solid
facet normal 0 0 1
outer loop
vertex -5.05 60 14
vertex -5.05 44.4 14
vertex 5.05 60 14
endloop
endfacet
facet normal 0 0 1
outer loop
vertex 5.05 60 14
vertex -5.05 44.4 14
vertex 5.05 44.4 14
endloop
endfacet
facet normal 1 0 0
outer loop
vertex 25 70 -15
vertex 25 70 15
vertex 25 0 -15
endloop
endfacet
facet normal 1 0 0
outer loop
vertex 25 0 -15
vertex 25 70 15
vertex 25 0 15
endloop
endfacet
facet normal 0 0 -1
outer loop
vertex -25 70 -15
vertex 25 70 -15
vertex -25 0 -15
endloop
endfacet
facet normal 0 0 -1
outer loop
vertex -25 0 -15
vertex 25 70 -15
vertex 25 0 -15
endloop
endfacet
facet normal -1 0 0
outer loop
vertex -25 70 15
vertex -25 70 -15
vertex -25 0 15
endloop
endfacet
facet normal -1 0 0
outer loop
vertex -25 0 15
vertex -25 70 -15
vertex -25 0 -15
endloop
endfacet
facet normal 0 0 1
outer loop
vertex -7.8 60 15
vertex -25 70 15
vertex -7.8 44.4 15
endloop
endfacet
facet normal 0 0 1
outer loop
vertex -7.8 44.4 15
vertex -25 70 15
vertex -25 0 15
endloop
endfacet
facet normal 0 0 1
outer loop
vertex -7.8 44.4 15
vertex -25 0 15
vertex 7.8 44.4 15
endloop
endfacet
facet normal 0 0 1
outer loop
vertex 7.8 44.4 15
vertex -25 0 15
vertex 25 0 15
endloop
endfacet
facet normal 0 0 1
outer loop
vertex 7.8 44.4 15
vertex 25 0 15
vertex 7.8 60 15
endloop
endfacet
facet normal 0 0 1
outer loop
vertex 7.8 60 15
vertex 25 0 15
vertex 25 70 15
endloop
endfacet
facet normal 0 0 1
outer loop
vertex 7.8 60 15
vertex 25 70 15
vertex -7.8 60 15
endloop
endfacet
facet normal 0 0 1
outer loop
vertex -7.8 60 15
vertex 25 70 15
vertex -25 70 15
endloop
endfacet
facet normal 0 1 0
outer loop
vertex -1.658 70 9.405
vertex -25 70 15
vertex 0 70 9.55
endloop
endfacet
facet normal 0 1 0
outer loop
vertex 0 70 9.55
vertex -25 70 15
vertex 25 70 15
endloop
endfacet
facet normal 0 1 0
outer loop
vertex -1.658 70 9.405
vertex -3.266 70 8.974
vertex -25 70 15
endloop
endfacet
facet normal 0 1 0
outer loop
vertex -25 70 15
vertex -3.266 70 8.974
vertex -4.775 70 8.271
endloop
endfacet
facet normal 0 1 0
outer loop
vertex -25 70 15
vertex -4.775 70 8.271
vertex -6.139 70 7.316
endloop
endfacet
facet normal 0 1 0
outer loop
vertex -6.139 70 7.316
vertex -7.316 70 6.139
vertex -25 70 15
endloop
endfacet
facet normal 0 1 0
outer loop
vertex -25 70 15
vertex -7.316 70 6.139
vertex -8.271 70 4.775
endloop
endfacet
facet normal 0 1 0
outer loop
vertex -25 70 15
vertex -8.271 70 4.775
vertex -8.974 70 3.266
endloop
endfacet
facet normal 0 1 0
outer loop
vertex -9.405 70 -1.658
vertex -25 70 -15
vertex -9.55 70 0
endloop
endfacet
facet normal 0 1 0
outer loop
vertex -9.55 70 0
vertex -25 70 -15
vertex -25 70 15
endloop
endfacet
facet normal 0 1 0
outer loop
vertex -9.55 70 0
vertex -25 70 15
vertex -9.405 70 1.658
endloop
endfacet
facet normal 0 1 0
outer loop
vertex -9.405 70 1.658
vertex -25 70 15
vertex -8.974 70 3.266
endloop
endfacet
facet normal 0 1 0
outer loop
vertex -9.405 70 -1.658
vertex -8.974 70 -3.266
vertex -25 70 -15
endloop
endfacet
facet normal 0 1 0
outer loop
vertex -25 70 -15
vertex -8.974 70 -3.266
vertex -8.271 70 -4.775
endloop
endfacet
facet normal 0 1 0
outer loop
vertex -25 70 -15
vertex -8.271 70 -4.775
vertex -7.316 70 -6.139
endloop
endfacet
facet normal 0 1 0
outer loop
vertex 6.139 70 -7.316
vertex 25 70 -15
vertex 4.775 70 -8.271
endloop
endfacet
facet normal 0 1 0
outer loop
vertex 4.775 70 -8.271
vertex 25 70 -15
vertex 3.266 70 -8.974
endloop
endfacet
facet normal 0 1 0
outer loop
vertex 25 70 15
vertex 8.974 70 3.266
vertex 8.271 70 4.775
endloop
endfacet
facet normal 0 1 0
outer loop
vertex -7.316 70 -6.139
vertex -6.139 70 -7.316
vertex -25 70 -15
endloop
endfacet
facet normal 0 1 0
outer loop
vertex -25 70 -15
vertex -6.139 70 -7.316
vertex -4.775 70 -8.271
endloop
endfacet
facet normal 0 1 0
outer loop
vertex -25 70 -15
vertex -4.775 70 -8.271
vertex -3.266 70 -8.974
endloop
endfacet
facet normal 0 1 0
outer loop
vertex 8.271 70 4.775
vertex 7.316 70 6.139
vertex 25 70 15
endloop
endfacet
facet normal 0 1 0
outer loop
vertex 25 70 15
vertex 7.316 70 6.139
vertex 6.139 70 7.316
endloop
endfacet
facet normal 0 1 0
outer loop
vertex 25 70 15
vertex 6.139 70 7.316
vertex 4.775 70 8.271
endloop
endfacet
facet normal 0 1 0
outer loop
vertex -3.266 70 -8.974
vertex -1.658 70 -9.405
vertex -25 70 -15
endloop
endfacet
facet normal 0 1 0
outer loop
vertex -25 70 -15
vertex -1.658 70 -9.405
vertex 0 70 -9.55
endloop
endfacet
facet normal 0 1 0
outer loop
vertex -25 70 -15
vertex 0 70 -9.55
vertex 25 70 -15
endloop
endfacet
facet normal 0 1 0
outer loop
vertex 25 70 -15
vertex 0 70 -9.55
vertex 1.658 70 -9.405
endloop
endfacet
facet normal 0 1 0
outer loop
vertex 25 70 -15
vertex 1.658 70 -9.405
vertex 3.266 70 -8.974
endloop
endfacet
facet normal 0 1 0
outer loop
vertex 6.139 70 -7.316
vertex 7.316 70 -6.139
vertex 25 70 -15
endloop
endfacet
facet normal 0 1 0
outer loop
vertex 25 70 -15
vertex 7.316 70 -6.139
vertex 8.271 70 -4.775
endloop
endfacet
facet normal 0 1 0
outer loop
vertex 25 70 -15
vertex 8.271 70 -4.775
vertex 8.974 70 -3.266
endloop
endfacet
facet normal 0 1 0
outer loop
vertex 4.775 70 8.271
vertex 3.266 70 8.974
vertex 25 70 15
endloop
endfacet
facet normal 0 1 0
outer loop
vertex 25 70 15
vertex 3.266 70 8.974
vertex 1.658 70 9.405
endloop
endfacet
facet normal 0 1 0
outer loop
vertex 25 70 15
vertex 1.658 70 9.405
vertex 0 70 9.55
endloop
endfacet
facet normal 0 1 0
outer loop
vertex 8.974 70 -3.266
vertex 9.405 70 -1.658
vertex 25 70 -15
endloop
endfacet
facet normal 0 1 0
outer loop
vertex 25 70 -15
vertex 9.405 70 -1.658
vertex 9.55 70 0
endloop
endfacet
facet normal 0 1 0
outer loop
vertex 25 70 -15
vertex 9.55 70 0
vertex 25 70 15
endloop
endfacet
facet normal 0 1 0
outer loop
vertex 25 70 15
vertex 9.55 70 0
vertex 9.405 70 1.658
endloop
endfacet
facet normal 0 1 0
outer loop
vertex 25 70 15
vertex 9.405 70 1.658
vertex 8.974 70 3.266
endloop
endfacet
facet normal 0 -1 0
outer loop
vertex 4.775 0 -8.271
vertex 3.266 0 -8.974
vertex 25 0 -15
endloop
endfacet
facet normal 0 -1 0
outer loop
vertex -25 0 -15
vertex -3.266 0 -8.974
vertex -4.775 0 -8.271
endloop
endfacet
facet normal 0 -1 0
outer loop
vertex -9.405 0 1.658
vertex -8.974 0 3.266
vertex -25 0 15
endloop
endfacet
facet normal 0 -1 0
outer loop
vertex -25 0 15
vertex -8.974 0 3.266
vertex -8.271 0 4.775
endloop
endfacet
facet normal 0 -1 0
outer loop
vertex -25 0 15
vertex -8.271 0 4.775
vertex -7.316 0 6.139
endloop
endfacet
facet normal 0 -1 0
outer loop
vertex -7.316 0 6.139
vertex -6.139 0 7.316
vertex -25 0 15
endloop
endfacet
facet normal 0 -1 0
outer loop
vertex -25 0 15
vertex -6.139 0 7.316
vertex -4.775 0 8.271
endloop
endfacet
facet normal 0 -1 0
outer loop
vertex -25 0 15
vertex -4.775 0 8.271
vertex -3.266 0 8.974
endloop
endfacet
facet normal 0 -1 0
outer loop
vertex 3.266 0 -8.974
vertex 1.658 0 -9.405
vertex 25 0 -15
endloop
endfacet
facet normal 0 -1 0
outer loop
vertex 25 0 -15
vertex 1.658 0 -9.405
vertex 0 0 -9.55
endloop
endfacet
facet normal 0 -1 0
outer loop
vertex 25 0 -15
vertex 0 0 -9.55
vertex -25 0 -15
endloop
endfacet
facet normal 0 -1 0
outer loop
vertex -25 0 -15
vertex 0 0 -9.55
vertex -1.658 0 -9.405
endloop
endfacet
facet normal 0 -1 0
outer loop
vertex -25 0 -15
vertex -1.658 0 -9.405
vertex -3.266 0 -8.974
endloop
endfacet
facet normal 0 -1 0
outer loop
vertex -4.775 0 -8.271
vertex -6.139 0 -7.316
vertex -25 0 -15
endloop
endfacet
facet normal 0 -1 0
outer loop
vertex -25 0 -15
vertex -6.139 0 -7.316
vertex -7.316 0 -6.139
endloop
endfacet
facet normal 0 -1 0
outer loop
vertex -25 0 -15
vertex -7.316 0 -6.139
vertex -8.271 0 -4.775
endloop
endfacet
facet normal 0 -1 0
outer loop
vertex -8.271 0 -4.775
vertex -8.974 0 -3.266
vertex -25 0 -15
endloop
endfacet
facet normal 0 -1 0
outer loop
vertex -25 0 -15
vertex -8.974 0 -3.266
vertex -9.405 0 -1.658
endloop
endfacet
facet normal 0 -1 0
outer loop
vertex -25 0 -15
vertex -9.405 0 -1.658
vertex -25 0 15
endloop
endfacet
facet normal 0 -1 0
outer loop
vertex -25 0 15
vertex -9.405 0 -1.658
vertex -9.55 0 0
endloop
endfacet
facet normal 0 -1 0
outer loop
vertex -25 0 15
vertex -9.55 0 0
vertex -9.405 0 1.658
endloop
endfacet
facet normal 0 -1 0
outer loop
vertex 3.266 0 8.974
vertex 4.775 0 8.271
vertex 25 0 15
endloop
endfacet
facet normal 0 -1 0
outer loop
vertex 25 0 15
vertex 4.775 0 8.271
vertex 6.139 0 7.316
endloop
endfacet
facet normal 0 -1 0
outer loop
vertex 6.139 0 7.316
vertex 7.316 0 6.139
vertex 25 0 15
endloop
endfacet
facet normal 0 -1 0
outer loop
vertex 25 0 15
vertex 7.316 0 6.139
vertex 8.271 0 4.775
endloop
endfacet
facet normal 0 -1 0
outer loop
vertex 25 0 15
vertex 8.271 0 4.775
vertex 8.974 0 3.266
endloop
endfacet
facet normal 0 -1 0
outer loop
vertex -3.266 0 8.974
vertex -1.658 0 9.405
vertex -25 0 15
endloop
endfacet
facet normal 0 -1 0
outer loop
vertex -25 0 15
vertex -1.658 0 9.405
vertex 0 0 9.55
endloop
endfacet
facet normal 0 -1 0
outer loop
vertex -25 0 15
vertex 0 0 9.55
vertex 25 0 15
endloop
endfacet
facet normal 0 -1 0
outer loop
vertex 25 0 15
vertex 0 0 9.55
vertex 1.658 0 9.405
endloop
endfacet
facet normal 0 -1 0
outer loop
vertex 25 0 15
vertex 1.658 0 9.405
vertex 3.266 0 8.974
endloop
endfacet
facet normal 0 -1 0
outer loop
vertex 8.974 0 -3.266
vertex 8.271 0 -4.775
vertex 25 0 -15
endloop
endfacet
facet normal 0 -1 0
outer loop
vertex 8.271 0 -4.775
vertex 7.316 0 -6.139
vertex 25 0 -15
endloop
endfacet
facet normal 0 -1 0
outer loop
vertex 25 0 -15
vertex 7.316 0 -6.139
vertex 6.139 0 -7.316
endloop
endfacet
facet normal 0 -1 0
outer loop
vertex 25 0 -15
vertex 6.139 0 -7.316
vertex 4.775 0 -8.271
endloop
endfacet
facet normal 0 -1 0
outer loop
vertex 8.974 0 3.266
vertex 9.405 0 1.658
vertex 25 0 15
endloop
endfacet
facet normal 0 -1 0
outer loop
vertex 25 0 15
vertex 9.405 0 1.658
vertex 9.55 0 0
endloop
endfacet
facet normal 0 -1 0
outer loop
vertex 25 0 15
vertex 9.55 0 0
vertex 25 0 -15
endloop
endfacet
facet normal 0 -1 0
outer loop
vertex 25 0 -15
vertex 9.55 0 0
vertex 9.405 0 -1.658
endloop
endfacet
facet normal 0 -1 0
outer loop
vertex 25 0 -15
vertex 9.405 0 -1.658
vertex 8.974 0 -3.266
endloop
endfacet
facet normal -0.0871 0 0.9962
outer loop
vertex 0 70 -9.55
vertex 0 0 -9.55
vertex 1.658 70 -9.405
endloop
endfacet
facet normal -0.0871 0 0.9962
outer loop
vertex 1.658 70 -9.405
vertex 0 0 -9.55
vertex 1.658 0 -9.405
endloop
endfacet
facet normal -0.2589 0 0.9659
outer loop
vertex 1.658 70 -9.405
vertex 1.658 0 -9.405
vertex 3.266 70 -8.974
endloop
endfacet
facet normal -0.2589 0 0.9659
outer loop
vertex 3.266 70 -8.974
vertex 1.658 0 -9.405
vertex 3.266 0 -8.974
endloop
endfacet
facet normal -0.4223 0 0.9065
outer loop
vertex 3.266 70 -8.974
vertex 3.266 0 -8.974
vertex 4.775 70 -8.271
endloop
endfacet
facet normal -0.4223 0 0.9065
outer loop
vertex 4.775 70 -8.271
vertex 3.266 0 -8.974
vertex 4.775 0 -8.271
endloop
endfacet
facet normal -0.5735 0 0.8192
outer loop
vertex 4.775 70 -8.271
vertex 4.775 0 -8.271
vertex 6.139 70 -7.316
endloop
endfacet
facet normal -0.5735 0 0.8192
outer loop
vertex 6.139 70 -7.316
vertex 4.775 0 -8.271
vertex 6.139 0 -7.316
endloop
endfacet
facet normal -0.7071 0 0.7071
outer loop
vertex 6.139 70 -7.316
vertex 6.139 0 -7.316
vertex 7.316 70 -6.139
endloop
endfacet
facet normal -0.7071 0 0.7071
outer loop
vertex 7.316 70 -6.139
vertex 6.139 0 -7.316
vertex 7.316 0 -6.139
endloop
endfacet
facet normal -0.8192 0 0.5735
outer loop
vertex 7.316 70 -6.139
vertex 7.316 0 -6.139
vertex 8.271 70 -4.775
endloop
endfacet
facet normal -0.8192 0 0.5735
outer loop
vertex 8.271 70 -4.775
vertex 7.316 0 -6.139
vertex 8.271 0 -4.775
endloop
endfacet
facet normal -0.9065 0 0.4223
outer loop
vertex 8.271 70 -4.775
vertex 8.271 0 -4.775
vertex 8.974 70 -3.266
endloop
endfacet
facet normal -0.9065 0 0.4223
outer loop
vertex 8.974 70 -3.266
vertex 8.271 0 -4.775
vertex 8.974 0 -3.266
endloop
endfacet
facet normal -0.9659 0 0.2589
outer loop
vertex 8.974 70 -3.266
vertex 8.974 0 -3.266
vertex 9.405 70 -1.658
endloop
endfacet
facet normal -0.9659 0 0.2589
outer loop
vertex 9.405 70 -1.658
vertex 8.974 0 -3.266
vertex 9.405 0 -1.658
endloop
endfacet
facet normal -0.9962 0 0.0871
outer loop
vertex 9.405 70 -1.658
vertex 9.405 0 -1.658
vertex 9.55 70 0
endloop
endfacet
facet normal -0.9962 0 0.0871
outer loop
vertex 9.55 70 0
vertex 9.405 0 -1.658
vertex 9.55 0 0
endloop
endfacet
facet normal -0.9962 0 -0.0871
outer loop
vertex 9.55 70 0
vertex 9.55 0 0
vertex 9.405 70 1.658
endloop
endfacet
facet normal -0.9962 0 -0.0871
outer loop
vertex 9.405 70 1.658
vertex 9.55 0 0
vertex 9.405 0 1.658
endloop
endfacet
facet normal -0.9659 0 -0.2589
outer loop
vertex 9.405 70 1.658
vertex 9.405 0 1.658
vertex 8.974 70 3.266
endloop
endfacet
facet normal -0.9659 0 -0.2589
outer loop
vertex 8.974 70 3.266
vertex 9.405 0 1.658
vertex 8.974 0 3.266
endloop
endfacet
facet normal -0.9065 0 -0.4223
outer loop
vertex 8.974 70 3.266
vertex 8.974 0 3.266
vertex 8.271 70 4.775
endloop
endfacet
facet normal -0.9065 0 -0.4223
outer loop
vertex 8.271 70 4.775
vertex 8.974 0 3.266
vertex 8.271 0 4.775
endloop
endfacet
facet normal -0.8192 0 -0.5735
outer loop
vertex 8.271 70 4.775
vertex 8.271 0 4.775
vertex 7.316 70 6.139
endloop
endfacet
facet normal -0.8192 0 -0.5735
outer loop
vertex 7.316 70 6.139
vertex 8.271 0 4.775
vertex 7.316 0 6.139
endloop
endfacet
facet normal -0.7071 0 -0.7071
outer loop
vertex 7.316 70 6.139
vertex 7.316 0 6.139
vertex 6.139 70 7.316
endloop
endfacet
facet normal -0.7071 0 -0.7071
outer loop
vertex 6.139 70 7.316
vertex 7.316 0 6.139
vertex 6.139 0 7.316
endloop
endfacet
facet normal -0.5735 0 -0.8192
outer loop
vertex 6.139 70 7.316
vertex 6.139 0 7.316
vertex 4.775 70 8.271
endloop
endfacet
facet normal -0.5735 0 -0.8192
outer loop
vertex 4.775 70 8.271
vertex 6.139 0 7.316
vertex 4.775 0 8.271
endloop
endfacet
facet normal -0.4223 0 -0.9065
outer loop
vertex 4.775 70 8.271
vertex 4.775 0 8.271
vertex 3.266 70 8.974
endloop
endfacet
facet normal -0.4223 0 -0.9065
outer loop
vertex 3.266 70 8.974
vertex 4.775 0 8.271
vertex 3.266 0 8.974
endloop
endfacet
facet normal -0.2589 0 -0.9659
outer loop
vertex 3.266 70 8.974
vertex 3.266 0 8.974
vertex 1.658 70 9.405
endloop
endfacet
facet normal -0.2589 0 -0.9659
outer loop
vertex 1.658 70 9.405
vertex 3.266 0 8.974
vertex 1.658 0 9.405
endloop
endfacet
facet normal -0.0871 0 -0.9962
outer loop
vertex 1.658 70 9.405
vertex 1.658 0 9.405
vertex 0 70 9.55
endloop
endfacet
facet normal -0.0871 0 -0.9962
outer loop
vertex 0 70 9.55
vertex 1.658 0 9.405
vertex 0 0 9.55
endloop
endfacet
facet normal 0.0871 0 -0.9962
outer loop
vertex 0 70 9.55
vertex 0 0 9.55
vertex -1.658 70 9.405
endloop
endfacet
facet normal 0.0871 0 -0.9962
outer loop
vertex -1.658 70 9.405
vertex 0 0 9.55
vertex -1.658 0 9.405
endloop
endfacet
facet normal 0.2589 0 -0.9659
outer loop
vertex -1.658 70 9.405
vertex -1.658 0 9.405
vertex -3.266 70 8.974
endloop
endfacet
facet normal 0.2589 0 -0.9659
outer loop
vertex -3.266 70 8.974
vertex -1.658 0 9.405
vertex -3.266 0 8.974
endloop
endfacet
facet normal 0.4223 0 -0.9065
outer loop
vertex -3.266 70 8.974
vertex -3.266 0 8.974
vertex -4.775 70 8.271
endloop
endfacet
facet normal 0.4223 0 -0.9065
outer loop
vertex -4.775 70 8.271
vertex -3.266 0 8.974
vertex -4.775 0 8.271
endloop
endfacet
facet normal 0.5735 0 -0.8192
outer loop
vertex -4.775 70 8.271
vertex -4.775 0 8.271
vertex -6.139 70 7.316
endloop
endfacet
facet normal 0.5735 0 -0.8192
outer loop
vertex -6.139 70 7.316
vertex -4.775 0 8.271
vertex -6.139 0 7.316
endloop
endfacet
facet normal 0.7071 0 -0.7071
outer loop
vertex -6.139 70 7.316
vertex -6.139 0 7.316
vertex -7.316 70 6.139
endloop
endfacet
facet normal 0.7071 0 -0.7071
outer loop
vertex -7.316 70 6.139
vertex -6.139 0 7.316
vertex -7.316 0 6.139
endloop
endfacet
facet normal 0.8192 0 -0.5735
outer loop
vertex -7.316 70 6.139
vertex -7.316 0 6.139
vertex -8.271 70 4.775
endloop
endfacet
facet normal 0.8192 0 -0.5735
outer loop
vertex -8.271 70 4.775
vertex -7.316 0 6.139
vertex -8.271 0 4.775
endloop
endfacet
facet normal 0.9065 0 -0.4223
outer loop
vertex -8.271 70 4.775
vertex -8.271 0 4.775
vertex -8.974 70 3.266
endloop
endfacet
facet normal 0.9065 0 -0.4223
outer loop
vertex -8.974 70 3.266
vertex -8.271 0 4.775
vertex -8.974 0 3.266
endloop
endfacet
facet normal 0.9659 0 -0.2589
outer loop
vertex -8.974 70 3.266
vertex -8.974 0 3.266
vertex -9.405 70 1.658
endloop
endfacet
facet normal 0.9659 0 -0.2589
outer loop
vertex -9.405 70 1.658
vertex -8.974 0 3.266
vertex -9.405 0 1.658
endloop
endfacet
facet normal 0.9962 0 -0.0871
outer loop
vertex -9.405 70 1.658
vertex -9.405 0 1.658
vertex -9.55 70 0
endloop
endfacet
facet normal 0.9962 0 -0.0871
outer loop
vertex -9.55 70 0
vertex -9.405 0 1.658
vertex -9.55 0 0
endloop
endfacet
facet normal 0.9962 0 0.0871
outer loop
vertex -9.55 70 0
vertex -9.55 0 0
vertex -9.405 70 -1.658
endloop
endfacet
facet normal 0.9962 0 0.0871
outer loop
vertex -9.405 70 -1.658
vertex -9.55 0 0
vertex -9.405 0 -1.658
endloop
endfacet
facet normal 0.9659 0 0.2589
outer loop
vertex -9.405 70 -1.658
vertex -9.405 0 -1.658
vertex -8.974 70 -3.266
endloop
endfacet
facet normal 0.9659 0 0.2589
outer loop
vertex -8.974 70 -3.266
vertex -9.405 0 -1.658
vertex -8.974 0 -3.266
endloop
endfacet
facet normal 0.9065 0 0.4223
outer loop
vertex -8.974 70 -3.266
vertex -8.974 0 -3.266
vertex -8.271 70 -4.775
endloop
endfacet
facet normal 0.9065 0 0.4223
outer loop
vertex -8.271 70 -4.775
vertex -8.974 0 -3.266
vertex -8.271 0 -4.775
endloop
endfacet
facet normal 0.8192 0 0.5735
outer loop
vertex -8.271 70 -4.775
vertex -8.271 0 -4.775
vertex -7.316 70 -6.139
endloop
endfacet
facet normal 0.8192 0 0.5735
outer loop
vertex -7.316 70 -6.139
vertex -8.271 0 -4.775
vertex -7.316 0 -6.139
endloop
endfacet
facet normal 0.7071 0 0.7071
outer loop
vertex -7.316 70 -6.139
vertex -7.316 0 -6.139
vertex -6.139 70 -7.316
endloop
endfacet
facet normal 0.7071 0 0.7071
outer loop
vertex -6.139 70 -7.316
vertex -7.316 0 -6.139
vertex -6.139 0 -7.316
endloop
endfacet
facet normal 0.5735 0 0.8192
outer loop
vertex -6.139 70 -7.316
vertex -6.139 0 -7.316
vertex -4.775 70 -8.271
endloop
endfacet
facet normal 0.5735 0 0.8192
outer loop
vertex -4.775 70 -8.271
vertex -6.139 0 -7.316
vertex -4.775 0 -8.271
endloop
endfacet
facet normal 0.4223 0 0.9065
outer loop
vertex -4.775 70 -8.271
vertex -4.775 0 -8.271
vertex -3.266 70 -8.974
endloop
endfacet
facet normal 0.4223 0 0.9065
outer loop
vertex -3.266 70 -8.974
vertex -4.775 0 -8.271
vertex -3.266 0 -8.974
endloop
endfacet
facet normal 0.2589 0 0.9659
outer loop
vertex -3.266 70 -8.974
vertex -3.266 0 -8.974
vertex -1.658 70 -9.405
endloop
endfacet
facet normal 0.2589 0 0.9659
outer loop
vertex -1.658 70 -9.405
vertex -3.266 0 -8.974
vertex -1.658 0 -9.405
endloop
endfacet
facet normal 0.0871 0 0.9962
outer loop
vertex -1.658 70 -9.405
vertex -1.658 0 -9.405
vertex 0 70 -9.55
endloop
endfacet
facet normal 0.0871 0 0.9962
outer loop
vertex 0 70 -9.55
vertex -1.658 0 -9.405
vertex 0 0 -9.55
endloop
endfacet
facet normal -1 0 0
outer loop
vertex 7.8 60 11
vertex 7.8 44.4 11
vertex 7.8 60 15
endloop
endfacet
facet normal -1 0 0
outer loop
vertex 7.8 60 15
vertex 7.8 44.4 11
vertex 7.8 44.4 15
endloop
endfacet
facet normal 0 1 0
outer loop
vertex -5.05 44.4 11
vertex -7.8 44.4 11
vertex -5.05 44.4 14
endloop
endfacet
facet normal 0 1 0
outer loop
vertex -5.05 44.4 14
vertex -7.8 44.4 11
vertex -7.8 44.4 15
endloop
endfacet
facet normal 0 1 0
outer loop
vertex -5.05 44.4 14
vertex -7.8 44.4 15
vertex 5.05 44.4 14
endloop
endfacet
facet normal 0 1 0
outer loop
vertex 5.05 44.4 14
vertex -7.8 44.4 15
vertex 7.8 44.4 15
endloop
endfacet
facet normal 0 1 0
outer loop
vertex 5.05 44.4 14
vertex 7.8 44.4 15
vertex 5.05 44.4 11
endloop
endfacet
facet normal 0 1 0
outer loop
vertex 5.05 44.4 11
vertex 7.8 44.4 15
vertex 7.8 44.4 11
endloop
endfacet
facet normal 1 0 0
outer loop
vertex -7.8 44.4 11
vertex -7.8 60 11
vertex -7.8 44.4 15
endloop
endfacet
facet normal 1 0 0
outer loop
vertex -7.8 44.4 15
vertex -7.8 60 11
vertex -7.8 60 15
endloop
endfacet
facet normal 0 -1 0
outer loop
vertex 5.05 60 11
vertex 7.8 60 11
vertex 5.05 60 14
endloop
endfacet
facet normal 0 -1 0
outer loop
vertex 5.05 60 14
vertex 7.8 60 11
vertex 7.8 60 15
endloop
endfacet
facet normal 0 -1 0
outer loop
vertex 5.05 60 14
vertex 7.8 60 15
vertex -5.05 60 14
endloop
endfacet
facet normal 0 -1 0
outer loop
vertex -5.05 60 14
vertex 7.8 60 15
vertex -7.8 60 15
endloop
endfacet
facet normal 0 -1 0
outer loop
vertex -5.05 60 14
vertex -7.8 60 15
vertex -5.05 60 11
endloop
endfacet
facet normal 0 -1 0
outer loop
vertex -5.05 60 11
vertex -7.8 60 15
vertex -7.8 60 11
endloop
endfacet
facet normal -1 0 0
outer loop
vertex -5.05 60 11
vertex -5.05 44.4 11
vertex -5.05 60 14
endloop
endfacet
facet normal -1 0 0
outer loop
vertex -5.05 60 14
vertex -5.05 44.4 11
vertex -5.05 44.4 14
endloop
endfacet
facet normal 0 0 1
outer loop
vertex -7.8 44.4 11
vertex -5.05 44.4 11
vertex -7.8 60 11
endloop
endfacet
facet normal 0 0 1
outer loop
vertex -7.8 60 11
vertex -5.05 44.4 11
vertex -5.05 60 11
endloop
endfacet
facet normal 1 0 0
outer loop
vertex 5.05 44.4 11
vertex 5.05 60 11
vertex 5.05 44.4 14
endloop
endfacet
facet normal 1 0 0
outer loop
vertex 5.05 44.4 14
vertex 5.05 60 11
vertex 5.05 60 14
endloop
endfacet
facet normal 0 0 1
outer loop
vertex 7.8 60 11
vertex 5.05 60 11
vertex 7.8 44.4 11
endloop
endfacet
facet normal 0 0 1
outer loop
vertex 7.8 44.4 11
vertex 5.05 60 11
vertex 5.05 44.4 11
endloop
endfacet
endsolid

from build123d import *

# Parameters (mm, degrees)
SKETCH_1_W          = 50
SKETCH_1_H          = 30
EXTRUDE_1_DEPTH     = 70
SKETCH_2_R          = 9.55
CUT_EXTRUDE_1_DEPTH = 120
CUT_EXTRUDE_START   = 15
SKETCH_3_W          = 15.6
SKETCH_3_H          = 15.6
CUT_EXTRUDE_3_DEPTH = 1
SKETCH_4_W          = 2.75
SKETCH_4_H          = 15.6
CUT_EXTRUDE_4_DEPTH = 3


with BuildPart() as part:
    # 草图1 → 凸台-拉伸1 (new body)
    with BuildSketch(Plane(origin=(0, 0, 0), x_dir=(1, 0, 0), z_dir=(0, 1, 0))):
        Rectangle(SKETCH_1_W, SKETCH_1_H)
    extrude(amount=EXTRUDE_1_DEPTH)

    # 草图2 → 切除-拉伸1 (cut)
    with BuildSketch(Plane.XZ):
        with Locations(Location((0, 0, 0), (0, 0, 270))):
            Circle(SKETCH_2_R)
    extrude(amount=-CUT_EXTRUDE_1_DEPTH, mode=Mode.SUBTRACT)

    # 草图3 → 切除-拉伸3 (cut)
    with BuildSketch(Plane.XY.offset(CUT_EXTRUDE_START)):
        with Locations((0, 52.2)):
            Rectangle(SKETCH_3_W, SKETCH_3_H)
    extrude(amount=-CUT_EXTRUDE_3_DEPTH, mode=Mode.SUBTRACT)

    # 草图4 → 切除-拉伸4 (cut)
    with BuildSketch(Plane.XY.offset(14)):
        with Locations((-6.425, 52.2)):
            Rectangle(SKETCH_4_W, SKETCH_4_H)
        with Locations((6.425, 52.2)):
            Rectangle(SKETCH_4_W, SKETCH_4_H)
    extrude(amount=-CUT_EXTRUDE_4_DEPTH, mode=Mode.SUBTRACT)


solid = part.part
